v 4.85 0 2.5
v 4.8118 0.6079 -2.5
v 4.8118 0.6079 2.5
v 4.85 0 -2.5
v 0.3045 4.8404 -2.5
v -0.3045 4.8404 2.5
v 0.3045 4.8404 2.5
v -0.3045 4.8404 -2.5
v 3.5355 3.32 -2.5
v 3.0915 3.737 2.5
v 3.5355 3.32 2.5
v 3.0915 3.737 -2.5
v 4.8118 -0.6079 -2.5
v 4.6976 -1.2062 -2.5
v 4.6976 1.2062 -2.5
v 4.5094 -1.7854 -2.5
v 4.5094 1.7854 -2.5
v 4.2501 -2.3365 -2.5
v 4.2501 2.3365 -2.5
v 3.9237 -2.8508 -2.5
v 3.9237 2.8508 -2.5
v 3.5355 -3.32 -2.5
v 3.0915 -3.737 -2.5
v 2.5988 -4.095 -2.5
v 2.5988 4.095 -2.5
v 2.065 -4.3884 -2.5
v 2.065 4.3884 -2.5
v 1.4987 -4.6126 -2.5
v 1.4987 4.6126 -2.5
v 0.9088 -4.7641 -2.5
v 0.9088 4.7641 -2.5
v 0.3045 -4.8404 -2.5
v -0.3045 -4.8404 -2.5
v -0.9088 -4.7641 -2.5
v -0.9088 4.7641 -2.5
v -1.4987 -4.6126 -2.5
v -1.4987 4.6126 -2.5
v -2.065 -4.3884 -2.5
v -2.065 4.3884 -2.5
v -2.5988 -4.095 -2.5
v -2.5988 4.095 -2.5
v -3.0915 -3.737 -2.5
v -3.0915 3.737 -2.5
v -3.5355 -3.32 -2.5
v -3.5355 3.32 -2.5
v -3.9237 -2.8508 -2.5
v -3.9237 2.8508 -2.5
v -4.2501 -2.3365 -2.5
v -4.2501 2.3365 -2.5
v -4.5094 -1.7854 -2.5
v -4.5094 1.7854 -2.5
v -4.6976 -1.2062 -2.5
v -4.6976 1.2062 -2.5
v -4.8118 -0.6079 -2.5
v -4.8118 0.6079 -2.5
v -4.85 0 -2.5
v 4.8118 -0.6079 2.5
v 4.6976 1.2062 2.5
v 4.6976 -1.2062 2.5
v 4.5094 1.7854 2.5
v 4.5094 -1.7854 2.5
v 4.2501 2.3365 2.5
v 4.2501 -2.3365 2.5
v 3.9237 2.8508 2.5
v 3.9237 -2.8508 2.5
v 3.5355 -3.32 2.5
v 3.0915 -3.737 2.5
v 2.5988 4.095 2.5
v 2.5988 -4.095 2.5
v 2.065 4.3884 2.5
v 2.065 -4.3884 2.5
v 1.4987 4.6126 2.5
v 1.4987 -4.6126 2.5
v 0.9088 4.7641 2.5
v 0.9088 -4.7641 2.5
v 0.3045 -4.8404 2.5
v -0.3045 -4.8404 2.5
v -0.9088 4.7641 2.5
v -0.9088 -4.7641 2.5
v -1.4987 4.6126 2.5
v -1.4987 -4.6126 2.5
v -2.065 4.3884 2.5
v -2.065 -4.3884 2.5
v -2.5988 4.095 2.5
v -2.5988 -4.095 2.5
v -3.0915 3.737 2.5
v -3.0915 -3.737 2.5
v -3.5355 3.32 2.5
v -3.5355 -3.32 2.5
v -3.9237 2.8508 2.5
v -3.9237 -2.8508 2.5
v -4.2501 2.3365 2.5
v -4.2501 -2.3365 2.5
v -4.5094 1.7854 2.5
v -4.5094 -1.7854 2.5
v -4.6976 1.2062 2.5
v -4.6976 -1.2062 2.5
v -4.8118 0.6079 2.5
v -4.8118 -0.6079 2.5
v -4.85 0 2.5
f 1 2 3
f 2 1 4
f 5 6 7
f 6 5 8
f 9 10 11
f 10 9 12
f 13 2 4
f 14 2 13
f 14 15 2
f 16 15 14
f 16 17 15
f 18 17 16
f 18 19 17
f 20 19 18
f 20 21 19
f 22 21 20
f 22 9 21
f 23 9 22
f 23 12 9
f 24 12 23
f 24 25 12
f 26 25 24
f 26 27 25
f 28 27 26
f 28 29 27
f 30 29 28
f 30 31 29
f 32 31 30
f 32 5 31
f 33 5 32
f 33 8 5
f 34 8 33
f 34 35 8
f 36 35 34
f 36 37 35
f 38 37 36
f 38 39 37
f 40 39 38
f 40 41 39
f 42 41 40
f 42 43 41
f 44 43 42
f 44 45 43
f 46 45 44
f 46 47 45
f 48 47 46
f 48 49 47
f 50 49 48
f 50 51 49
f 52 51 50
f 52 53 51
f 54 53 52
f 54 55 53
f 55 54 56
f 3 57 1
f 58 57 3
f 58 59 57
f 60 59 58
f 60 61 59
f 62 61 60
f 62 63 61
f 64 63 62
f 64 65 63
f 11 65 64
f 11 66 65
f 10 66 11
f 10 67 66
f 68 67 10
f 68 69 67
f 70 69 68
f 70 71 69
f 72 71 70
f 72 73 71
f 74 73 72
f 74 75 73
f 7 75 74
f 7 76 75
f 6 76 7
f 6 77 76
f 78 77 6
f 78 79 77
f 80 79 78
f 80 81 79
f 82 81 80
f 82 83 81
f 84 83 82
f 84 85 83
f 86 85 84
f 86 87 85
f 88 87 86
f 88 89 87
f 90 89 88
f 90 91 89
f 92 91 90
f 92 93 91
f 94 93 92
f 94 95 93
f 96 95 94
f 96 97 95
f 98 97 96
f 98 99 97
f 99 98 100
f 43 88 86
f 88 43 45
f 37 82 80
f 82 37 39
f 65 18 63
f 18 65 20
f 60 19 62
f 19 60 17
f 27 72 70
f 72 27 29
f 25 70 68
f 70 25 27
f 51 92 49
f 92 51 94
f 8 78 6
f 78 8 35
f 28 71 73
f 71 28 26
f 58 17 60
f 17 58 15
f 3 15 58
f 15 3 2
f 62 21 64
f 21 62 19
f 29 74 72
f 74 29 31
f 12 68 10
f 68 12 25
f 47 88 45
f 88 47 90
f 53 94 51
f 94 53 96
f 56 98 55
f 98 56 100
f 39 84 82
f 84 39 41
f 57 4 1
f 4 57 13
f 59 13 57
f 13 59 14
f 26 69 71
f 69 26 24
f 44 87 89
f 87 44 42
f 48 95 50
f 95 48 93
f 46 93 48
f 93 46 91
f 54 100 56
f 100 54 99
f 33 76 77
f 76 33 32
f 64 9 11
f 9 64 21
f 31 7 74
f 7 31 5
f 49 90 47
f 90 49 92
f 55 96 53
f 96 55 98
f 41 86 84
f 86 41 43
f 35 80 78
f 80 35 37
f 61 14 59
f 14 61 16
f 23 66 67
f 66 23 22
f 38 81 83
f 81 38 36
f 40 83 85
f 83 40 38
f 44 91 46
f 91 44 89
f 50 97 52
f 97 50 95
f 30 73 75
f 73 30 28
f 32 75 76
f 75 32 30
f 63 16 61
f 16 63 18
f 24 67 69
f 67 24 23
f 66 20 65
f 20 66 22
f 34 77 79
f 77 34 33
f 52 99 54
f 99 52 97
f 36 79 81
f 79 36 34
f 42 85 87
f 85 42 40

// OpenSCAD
$fn = 50;


difference() {
	union() {
		translate(v = [0, 0, -2.5000000000]) {
			cylinder(h = 5, r = 4.8500000000);
		}
	}
	union() {
		translate(v = [0, 0, -100.0000000000]) {
			cylinder(h = 200, r = 0);
		}
	}
}
